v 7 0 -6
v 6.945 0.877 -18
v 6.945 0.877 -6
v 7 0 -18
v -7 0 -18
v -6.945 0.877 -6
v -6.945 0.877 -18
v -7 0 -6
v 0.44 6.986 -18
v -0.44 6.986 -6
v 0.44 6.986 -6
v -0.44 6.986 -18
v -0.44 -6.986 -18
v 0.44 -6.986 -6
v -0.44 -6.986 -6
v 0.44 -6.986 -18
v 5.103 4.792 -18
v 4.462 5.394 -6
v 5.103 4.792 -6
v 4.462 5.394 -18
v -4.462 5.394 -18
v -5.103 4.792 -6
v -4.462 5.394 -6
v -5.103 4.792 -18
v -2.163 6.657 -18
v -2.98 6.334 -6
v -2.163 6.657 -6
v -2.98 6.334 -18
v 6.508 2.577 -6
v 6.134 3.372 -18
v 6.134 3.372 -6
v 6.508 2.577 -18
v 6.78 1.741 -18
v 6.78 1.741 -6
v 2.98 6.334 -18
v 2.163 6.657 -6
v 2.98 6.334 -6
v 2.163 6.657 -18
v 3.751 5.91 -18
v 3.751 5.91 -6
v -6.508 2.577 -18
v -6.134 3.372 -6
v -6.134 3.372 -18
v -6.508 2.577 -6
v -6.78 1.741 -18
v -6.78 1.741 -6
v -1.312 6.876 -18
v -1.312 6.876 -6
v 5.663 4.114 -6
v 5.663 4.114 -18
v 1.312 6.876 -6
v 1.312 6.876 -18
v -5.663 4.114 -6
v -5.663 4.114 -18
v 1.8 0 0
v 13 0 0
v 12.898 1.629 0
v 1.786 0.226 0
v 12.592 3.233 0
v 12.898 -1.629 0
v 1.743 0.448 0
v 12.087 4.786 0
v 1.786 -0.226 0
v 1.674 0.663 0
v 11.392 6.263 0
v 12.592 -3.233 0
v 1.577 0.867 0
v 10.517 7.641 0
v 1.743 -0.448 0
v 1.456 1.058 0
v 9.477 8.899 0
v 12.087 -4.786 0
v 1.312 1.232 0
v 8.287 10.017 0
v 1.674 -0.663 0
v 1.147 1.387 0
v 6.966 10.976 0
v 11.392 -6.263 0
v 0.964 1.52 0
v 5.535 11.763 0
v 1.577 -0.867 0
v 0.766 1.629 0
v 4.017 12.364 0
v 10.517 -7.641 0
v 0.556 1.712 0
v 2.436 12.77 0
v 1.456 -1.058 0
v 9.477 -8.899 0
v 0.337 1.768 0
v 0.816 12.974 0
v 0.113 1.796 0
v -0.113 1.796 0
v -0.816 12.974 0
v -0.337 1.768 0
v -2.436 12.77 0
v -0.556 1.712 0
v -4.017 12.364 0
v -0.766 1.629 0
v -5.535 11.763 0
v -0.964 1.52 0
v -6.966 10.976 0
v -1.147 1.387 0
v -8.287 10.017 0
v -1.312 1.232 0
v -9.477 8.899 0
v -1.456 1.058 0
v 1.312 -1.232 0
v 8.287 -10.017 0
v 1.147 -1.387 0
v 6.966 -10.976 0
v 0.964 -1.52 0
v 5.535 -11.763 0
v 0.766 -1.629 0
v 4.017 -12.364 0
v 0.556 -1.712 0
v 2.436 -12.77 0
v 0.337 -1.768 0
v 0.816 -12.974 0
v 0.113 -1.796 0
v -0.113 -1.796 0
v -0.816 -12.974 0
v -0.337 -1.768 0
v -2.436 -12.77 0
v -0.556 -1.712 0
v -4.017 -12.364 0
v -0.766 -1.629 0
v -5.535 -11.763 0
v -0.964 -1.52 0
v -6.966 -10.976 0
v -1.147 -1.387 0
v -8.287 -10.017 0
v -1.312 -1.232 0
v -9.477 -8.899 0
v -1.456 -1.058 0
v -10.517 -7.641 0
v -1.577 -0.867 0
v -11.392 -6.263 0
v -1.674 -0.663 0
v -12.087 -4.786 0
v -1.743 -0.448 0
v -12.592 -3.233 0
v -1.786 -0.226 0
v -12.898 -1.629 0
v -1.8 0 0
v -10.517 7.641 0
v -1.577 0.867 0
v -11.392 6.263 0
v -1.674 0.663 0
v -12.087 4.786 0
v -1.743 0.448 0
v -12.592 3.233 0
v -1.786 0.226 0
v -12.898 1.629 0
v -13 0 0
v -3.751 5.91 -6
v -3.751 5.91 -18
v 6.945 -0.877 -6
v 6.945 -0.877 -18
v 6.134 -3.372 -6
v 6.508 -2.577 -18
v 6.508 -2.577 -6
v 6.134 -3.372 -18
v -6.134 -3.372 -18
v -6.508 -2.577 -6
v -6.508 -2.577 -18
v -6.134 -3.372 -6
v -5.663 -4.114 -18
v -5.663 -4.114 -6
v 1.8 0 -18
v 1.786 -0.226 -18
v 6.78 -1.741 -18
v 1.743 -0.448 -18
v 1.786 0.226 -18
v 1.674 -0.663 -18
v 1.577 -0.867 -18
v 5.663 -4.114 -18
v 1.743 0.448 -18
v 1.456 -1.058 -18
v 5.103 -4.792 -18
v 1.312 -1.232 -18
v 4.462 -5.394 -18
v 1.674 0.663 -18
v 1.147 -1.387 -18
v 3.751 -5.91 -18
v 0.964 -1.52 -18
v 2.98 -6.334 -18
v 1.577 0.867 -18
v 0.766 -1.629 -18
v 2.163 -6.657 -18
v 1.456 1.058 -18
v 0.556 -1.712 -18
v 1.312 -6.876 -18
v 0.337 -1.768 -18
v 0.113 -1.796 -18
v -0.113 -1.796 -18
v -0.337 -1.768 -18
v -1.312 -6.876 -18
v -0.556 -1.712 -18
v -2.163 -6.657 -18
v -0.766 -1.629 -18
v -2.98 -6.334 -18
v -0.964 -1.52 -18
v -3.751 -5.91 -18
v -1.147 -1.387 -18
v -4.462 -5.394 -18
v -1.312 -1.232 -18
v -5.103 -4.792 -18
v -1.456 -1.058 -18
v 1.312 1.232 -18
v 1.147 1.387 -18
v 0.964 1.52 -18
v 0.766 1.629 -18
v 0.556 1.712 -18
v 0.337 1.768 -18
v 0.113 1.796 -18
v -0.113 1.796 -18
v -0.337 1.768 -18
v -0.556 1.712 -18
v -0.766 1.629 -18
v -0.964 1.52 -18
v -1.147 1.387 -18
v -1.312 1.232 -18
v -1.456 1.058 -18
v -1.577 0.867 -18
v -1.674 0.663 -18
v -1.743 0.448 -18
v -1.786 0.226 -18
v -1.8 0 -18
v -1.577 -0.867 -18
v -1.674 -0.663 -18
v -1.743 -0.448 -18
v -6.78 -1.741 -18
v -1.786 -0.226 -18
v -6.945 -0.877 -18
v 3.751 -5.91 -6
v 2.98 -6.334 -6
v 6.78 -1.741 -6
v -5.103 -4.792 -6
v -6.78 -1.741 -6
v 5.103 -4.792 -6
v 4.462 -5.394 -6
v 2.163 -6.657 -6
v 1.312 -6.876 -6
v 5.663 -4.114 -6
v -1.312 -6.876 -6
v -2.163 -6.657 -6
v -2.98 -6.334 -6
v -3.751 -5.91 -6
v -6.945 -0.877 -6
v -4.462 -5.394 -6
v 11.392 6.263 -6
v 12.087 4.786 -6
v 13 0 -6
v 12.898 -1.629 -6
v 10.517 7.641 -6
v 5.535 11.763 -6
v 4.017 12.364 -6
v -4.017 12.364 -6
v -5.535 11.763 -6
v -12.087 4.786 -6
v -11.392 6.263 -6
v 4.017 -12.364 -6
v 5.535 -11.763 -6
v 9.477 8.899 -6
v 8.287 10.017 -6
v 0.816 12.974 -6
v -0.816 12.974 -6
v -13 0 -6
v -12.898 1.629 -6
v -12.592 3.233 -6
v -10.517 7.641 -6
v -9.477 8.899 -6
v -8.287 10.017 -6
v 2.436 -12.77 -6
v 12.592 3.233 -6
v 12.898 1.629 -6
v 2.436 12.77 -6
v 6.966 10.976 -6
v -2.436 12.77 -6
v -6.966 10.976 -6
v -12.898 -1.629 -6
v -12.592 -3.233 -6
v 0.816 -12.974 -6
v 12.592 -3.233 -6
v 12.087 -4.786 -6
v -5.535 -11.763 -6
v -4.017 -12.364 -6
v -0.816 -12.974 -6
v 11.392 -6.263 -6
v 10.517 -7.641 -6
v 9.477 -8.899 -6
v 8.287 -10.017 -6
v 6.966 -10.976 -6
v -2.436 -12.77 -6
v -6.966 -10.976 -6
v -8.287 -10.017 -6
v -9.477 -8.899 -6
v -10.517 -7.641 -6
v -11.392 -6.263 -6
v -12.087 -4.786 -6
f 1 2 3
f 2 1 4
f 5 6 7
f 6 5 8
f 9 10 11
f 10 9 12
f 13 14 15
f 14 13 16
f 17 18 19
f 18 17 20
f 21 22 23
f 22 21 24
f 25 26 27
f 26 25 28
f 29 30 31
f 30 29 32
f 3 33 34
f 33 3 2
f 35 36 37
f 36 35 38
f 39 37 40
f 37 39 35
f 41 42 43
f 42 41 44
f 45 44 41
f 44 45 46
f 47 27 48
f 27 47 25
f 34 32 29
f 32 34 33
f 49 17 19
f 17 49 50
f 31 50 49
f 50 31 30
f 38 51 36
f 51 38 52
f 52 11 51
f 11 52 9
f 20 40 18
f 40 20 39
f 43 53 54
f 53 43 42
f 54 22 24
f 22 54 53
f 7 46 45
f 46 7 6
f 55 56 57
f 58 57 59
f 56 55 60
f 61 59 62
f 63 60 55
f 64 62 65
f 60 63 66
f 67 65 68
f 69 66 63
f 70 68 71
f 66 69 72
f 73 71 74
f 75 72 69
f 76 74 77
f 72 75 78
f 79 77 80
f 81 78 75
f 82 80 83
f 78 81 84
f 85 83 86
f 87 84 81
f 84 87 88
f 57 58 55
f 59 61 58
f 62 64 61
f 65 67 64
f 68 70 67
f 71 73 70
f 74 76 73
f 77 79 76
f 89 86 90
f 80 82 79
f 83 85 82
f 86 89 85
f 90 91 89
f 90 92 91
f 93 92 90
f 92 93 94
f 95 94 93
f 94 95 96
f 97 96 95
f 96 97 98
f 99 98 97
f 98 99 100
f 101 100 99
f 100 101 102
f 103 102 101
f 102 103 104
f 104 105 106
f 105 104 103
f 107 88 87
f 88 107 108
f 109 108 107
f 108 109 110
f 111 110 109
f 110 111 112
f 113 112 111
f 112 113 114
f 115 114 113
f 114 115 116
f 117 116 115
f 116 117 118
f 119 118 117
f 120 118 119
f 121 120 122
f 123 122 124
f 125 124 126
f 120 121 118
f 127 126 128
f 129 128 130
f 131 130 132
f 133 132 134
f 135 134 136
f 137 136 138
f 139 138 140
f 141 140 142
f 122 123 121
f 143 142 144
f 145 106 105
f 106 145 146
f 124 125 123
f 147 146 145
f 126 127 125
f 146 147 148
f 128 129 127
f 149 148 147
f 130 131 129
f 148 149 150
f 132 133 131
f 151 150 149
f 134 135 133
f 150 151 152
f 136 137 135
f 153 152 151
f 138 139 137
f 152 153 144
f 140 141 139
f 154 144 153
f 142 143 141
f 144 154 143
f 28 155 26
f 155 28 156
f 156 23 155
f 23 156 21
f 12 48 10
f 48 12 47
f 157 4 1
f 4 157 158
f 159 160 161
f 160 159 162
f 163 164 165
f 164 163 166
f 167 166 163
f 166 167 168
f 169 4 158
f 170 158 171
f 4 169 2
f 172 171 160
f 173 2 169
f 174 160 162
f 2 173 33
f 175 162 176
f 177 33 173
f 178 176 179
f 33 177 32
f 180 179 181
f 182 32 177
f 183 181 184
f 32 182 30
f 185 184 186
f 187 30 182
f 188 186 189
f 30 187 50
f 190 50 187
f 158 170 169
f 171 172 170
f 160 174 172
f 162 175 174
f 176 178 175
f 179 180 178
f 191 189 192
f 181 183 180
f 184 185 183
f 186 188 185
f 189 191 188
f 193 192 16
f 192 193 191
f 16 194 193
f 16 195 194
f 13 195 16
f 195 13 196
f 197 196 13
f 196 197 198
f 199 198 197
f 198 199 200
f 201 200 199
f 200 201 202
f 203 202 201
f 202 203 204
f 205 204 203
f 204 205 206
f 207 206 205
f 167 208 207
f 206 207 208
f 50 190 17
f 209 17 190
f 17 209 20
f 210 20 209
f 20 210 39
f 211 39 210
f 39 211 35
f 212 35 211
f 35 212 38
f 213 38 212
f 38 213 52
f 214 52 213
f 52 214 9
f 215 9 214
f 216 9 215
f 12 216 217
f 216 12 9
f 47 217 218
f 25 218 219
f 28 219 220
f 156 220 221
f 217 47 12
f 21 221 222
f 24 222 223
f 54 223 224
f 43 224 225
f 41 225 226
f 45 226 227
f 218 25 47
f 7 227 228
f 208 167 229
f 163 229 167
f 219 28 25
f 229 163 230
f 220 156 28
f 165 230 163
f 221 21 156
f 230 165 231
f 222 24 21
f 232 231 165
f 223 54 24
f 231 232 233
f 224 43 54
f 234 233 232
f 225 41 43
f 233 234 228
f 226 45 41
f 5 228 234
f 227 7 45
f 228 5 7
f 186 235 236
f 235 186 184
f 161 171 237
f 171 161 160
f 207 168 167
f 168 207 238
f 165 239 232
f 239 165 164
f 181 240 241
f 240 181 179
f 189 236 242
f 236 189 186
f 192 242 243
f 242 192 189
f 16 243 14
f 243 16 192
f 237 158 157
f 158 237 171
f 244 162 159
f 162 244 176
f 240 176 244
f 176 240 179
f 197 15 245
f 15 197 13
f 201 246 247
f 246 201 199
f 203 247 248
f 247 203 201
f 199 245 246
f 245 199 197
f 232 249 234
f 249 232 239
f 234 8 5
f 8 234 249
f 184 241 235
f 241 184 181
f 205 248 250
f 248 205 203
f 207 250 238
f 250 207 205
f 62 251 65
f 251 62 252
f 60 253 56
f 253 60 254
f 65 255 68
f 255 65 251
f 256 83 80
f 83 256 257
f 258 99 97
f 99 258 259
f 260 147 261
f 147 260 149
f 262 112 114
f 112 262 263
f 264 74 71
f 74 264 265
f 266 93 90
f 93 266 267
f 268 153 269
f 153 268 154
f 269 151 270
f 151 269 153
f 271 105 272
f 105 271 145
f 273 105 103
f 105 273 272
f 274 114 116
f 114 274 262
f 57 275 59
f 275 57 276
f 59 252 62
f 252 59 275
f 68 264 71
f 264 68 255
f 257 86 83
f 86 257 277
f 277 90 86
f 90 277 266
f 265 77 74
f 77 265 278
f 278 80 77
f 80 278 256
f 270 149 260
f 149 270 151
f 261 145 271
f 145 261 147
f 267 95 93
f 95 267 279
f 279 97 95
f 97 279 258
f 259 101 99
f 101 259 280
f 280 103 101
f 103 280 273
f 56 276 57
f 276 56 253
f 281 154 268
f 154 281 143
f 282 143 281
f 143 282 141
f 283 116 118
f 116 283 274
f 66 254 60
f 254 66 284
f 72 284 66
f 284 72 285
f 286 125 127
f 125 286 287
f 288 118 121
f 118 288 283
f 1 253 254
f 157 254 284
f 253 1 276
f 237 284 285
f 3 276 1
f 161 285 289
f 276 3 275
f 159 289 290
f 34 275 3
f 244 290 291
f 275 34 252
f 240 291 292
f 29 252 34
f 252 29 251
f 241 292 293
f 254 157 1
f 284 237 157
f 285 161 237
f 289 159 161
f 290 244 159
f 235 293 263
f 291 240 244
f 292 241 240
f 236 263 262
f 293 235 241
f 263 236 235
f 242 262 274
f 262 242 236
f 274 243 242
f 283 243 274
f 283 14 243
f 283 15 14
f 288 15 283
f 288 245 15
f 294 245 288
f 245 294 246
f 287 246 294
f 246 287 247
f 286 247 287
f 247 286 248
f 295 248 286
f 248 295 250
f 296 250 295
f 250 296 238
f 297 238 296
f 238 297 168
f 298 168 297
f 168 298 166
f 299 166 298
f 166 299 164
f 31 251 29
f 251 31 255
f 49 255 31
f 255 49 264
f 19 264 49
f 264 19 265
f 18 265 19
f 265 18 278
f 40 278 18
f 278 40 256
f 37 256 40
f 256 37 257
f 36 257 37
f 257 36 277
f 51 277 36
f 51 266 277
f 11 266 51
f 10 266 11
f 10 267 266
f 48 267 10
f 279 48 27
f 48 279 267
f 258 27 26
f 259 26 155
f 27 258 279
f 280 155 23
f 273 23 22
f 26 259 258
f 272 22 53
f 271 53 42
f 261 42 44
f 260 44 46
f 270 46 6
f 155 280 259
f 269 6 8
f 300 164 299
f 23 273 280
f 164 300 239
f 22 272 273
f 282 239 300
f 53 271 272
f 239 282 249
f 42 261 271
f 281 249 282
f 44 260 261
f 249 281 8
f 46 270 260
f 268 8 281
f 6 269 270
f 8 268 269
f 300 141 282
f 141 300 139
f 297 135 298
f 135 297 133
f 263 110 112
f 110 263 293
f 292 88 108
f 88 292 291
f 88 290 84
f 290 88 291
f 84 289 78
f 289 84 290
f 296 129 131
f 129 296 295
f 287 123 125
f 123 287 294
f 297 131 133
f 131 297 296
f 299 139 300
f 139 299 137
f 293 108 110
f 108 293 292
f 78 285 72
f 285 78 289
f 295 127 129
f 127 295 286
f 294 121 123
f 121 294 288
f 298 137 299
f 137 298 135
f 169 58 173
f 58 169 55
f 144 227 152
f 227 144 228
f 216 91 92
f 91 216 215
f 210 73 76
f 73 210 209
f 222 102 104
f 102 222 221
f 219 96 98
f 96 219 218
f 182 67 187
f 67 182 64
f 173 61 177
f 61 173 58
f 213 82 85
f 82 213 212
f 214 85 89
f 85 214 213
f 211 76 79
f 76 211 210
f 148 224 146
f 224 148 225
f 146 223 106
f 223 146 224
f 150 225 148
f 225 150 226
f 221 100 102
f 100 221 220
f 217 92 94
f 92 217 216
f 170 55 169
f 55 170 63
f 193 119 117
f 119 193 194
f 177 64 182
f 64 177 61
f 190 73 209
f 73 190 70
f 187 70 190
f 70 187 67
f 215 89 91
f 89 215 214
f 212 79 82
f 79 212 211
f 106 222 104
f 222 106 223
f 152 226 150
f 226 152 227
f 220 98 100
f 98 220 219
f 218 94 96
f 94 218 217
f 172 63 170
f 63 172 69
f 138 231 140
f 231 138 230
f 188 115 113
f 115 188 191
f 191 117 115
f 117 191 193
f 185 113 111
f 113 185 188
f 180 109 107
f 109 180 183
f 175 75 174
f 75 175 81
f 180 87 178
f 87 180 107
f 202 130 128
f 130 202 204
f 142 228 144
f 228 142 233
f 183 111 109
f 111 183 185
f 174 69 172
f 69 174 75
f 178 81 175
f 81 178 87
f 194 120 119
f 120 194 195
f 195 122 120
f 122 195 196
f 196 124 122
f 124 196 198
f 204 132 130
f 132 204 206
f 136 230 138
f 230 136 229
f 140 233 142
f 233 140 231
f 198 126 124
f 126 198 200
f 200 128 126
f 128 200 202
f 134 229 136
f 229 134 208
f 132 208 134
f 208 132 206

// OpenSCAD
$fn = 50;


difference() {
	union() {
		translate(v = [0, 0, -18.0000000000]) {
			cylinder(h = 18, r = 7.0000000000);
		}
		translate(v = [0, 0, -6.0000000000]) {
			cylinder(h = 6, r = 13.0000000000);
		}
	}
	union() {
		#translate(v = [0, 0, -18]) {
			cylinder(h = 18, r = 1.8000000000);
		}
	}
}
